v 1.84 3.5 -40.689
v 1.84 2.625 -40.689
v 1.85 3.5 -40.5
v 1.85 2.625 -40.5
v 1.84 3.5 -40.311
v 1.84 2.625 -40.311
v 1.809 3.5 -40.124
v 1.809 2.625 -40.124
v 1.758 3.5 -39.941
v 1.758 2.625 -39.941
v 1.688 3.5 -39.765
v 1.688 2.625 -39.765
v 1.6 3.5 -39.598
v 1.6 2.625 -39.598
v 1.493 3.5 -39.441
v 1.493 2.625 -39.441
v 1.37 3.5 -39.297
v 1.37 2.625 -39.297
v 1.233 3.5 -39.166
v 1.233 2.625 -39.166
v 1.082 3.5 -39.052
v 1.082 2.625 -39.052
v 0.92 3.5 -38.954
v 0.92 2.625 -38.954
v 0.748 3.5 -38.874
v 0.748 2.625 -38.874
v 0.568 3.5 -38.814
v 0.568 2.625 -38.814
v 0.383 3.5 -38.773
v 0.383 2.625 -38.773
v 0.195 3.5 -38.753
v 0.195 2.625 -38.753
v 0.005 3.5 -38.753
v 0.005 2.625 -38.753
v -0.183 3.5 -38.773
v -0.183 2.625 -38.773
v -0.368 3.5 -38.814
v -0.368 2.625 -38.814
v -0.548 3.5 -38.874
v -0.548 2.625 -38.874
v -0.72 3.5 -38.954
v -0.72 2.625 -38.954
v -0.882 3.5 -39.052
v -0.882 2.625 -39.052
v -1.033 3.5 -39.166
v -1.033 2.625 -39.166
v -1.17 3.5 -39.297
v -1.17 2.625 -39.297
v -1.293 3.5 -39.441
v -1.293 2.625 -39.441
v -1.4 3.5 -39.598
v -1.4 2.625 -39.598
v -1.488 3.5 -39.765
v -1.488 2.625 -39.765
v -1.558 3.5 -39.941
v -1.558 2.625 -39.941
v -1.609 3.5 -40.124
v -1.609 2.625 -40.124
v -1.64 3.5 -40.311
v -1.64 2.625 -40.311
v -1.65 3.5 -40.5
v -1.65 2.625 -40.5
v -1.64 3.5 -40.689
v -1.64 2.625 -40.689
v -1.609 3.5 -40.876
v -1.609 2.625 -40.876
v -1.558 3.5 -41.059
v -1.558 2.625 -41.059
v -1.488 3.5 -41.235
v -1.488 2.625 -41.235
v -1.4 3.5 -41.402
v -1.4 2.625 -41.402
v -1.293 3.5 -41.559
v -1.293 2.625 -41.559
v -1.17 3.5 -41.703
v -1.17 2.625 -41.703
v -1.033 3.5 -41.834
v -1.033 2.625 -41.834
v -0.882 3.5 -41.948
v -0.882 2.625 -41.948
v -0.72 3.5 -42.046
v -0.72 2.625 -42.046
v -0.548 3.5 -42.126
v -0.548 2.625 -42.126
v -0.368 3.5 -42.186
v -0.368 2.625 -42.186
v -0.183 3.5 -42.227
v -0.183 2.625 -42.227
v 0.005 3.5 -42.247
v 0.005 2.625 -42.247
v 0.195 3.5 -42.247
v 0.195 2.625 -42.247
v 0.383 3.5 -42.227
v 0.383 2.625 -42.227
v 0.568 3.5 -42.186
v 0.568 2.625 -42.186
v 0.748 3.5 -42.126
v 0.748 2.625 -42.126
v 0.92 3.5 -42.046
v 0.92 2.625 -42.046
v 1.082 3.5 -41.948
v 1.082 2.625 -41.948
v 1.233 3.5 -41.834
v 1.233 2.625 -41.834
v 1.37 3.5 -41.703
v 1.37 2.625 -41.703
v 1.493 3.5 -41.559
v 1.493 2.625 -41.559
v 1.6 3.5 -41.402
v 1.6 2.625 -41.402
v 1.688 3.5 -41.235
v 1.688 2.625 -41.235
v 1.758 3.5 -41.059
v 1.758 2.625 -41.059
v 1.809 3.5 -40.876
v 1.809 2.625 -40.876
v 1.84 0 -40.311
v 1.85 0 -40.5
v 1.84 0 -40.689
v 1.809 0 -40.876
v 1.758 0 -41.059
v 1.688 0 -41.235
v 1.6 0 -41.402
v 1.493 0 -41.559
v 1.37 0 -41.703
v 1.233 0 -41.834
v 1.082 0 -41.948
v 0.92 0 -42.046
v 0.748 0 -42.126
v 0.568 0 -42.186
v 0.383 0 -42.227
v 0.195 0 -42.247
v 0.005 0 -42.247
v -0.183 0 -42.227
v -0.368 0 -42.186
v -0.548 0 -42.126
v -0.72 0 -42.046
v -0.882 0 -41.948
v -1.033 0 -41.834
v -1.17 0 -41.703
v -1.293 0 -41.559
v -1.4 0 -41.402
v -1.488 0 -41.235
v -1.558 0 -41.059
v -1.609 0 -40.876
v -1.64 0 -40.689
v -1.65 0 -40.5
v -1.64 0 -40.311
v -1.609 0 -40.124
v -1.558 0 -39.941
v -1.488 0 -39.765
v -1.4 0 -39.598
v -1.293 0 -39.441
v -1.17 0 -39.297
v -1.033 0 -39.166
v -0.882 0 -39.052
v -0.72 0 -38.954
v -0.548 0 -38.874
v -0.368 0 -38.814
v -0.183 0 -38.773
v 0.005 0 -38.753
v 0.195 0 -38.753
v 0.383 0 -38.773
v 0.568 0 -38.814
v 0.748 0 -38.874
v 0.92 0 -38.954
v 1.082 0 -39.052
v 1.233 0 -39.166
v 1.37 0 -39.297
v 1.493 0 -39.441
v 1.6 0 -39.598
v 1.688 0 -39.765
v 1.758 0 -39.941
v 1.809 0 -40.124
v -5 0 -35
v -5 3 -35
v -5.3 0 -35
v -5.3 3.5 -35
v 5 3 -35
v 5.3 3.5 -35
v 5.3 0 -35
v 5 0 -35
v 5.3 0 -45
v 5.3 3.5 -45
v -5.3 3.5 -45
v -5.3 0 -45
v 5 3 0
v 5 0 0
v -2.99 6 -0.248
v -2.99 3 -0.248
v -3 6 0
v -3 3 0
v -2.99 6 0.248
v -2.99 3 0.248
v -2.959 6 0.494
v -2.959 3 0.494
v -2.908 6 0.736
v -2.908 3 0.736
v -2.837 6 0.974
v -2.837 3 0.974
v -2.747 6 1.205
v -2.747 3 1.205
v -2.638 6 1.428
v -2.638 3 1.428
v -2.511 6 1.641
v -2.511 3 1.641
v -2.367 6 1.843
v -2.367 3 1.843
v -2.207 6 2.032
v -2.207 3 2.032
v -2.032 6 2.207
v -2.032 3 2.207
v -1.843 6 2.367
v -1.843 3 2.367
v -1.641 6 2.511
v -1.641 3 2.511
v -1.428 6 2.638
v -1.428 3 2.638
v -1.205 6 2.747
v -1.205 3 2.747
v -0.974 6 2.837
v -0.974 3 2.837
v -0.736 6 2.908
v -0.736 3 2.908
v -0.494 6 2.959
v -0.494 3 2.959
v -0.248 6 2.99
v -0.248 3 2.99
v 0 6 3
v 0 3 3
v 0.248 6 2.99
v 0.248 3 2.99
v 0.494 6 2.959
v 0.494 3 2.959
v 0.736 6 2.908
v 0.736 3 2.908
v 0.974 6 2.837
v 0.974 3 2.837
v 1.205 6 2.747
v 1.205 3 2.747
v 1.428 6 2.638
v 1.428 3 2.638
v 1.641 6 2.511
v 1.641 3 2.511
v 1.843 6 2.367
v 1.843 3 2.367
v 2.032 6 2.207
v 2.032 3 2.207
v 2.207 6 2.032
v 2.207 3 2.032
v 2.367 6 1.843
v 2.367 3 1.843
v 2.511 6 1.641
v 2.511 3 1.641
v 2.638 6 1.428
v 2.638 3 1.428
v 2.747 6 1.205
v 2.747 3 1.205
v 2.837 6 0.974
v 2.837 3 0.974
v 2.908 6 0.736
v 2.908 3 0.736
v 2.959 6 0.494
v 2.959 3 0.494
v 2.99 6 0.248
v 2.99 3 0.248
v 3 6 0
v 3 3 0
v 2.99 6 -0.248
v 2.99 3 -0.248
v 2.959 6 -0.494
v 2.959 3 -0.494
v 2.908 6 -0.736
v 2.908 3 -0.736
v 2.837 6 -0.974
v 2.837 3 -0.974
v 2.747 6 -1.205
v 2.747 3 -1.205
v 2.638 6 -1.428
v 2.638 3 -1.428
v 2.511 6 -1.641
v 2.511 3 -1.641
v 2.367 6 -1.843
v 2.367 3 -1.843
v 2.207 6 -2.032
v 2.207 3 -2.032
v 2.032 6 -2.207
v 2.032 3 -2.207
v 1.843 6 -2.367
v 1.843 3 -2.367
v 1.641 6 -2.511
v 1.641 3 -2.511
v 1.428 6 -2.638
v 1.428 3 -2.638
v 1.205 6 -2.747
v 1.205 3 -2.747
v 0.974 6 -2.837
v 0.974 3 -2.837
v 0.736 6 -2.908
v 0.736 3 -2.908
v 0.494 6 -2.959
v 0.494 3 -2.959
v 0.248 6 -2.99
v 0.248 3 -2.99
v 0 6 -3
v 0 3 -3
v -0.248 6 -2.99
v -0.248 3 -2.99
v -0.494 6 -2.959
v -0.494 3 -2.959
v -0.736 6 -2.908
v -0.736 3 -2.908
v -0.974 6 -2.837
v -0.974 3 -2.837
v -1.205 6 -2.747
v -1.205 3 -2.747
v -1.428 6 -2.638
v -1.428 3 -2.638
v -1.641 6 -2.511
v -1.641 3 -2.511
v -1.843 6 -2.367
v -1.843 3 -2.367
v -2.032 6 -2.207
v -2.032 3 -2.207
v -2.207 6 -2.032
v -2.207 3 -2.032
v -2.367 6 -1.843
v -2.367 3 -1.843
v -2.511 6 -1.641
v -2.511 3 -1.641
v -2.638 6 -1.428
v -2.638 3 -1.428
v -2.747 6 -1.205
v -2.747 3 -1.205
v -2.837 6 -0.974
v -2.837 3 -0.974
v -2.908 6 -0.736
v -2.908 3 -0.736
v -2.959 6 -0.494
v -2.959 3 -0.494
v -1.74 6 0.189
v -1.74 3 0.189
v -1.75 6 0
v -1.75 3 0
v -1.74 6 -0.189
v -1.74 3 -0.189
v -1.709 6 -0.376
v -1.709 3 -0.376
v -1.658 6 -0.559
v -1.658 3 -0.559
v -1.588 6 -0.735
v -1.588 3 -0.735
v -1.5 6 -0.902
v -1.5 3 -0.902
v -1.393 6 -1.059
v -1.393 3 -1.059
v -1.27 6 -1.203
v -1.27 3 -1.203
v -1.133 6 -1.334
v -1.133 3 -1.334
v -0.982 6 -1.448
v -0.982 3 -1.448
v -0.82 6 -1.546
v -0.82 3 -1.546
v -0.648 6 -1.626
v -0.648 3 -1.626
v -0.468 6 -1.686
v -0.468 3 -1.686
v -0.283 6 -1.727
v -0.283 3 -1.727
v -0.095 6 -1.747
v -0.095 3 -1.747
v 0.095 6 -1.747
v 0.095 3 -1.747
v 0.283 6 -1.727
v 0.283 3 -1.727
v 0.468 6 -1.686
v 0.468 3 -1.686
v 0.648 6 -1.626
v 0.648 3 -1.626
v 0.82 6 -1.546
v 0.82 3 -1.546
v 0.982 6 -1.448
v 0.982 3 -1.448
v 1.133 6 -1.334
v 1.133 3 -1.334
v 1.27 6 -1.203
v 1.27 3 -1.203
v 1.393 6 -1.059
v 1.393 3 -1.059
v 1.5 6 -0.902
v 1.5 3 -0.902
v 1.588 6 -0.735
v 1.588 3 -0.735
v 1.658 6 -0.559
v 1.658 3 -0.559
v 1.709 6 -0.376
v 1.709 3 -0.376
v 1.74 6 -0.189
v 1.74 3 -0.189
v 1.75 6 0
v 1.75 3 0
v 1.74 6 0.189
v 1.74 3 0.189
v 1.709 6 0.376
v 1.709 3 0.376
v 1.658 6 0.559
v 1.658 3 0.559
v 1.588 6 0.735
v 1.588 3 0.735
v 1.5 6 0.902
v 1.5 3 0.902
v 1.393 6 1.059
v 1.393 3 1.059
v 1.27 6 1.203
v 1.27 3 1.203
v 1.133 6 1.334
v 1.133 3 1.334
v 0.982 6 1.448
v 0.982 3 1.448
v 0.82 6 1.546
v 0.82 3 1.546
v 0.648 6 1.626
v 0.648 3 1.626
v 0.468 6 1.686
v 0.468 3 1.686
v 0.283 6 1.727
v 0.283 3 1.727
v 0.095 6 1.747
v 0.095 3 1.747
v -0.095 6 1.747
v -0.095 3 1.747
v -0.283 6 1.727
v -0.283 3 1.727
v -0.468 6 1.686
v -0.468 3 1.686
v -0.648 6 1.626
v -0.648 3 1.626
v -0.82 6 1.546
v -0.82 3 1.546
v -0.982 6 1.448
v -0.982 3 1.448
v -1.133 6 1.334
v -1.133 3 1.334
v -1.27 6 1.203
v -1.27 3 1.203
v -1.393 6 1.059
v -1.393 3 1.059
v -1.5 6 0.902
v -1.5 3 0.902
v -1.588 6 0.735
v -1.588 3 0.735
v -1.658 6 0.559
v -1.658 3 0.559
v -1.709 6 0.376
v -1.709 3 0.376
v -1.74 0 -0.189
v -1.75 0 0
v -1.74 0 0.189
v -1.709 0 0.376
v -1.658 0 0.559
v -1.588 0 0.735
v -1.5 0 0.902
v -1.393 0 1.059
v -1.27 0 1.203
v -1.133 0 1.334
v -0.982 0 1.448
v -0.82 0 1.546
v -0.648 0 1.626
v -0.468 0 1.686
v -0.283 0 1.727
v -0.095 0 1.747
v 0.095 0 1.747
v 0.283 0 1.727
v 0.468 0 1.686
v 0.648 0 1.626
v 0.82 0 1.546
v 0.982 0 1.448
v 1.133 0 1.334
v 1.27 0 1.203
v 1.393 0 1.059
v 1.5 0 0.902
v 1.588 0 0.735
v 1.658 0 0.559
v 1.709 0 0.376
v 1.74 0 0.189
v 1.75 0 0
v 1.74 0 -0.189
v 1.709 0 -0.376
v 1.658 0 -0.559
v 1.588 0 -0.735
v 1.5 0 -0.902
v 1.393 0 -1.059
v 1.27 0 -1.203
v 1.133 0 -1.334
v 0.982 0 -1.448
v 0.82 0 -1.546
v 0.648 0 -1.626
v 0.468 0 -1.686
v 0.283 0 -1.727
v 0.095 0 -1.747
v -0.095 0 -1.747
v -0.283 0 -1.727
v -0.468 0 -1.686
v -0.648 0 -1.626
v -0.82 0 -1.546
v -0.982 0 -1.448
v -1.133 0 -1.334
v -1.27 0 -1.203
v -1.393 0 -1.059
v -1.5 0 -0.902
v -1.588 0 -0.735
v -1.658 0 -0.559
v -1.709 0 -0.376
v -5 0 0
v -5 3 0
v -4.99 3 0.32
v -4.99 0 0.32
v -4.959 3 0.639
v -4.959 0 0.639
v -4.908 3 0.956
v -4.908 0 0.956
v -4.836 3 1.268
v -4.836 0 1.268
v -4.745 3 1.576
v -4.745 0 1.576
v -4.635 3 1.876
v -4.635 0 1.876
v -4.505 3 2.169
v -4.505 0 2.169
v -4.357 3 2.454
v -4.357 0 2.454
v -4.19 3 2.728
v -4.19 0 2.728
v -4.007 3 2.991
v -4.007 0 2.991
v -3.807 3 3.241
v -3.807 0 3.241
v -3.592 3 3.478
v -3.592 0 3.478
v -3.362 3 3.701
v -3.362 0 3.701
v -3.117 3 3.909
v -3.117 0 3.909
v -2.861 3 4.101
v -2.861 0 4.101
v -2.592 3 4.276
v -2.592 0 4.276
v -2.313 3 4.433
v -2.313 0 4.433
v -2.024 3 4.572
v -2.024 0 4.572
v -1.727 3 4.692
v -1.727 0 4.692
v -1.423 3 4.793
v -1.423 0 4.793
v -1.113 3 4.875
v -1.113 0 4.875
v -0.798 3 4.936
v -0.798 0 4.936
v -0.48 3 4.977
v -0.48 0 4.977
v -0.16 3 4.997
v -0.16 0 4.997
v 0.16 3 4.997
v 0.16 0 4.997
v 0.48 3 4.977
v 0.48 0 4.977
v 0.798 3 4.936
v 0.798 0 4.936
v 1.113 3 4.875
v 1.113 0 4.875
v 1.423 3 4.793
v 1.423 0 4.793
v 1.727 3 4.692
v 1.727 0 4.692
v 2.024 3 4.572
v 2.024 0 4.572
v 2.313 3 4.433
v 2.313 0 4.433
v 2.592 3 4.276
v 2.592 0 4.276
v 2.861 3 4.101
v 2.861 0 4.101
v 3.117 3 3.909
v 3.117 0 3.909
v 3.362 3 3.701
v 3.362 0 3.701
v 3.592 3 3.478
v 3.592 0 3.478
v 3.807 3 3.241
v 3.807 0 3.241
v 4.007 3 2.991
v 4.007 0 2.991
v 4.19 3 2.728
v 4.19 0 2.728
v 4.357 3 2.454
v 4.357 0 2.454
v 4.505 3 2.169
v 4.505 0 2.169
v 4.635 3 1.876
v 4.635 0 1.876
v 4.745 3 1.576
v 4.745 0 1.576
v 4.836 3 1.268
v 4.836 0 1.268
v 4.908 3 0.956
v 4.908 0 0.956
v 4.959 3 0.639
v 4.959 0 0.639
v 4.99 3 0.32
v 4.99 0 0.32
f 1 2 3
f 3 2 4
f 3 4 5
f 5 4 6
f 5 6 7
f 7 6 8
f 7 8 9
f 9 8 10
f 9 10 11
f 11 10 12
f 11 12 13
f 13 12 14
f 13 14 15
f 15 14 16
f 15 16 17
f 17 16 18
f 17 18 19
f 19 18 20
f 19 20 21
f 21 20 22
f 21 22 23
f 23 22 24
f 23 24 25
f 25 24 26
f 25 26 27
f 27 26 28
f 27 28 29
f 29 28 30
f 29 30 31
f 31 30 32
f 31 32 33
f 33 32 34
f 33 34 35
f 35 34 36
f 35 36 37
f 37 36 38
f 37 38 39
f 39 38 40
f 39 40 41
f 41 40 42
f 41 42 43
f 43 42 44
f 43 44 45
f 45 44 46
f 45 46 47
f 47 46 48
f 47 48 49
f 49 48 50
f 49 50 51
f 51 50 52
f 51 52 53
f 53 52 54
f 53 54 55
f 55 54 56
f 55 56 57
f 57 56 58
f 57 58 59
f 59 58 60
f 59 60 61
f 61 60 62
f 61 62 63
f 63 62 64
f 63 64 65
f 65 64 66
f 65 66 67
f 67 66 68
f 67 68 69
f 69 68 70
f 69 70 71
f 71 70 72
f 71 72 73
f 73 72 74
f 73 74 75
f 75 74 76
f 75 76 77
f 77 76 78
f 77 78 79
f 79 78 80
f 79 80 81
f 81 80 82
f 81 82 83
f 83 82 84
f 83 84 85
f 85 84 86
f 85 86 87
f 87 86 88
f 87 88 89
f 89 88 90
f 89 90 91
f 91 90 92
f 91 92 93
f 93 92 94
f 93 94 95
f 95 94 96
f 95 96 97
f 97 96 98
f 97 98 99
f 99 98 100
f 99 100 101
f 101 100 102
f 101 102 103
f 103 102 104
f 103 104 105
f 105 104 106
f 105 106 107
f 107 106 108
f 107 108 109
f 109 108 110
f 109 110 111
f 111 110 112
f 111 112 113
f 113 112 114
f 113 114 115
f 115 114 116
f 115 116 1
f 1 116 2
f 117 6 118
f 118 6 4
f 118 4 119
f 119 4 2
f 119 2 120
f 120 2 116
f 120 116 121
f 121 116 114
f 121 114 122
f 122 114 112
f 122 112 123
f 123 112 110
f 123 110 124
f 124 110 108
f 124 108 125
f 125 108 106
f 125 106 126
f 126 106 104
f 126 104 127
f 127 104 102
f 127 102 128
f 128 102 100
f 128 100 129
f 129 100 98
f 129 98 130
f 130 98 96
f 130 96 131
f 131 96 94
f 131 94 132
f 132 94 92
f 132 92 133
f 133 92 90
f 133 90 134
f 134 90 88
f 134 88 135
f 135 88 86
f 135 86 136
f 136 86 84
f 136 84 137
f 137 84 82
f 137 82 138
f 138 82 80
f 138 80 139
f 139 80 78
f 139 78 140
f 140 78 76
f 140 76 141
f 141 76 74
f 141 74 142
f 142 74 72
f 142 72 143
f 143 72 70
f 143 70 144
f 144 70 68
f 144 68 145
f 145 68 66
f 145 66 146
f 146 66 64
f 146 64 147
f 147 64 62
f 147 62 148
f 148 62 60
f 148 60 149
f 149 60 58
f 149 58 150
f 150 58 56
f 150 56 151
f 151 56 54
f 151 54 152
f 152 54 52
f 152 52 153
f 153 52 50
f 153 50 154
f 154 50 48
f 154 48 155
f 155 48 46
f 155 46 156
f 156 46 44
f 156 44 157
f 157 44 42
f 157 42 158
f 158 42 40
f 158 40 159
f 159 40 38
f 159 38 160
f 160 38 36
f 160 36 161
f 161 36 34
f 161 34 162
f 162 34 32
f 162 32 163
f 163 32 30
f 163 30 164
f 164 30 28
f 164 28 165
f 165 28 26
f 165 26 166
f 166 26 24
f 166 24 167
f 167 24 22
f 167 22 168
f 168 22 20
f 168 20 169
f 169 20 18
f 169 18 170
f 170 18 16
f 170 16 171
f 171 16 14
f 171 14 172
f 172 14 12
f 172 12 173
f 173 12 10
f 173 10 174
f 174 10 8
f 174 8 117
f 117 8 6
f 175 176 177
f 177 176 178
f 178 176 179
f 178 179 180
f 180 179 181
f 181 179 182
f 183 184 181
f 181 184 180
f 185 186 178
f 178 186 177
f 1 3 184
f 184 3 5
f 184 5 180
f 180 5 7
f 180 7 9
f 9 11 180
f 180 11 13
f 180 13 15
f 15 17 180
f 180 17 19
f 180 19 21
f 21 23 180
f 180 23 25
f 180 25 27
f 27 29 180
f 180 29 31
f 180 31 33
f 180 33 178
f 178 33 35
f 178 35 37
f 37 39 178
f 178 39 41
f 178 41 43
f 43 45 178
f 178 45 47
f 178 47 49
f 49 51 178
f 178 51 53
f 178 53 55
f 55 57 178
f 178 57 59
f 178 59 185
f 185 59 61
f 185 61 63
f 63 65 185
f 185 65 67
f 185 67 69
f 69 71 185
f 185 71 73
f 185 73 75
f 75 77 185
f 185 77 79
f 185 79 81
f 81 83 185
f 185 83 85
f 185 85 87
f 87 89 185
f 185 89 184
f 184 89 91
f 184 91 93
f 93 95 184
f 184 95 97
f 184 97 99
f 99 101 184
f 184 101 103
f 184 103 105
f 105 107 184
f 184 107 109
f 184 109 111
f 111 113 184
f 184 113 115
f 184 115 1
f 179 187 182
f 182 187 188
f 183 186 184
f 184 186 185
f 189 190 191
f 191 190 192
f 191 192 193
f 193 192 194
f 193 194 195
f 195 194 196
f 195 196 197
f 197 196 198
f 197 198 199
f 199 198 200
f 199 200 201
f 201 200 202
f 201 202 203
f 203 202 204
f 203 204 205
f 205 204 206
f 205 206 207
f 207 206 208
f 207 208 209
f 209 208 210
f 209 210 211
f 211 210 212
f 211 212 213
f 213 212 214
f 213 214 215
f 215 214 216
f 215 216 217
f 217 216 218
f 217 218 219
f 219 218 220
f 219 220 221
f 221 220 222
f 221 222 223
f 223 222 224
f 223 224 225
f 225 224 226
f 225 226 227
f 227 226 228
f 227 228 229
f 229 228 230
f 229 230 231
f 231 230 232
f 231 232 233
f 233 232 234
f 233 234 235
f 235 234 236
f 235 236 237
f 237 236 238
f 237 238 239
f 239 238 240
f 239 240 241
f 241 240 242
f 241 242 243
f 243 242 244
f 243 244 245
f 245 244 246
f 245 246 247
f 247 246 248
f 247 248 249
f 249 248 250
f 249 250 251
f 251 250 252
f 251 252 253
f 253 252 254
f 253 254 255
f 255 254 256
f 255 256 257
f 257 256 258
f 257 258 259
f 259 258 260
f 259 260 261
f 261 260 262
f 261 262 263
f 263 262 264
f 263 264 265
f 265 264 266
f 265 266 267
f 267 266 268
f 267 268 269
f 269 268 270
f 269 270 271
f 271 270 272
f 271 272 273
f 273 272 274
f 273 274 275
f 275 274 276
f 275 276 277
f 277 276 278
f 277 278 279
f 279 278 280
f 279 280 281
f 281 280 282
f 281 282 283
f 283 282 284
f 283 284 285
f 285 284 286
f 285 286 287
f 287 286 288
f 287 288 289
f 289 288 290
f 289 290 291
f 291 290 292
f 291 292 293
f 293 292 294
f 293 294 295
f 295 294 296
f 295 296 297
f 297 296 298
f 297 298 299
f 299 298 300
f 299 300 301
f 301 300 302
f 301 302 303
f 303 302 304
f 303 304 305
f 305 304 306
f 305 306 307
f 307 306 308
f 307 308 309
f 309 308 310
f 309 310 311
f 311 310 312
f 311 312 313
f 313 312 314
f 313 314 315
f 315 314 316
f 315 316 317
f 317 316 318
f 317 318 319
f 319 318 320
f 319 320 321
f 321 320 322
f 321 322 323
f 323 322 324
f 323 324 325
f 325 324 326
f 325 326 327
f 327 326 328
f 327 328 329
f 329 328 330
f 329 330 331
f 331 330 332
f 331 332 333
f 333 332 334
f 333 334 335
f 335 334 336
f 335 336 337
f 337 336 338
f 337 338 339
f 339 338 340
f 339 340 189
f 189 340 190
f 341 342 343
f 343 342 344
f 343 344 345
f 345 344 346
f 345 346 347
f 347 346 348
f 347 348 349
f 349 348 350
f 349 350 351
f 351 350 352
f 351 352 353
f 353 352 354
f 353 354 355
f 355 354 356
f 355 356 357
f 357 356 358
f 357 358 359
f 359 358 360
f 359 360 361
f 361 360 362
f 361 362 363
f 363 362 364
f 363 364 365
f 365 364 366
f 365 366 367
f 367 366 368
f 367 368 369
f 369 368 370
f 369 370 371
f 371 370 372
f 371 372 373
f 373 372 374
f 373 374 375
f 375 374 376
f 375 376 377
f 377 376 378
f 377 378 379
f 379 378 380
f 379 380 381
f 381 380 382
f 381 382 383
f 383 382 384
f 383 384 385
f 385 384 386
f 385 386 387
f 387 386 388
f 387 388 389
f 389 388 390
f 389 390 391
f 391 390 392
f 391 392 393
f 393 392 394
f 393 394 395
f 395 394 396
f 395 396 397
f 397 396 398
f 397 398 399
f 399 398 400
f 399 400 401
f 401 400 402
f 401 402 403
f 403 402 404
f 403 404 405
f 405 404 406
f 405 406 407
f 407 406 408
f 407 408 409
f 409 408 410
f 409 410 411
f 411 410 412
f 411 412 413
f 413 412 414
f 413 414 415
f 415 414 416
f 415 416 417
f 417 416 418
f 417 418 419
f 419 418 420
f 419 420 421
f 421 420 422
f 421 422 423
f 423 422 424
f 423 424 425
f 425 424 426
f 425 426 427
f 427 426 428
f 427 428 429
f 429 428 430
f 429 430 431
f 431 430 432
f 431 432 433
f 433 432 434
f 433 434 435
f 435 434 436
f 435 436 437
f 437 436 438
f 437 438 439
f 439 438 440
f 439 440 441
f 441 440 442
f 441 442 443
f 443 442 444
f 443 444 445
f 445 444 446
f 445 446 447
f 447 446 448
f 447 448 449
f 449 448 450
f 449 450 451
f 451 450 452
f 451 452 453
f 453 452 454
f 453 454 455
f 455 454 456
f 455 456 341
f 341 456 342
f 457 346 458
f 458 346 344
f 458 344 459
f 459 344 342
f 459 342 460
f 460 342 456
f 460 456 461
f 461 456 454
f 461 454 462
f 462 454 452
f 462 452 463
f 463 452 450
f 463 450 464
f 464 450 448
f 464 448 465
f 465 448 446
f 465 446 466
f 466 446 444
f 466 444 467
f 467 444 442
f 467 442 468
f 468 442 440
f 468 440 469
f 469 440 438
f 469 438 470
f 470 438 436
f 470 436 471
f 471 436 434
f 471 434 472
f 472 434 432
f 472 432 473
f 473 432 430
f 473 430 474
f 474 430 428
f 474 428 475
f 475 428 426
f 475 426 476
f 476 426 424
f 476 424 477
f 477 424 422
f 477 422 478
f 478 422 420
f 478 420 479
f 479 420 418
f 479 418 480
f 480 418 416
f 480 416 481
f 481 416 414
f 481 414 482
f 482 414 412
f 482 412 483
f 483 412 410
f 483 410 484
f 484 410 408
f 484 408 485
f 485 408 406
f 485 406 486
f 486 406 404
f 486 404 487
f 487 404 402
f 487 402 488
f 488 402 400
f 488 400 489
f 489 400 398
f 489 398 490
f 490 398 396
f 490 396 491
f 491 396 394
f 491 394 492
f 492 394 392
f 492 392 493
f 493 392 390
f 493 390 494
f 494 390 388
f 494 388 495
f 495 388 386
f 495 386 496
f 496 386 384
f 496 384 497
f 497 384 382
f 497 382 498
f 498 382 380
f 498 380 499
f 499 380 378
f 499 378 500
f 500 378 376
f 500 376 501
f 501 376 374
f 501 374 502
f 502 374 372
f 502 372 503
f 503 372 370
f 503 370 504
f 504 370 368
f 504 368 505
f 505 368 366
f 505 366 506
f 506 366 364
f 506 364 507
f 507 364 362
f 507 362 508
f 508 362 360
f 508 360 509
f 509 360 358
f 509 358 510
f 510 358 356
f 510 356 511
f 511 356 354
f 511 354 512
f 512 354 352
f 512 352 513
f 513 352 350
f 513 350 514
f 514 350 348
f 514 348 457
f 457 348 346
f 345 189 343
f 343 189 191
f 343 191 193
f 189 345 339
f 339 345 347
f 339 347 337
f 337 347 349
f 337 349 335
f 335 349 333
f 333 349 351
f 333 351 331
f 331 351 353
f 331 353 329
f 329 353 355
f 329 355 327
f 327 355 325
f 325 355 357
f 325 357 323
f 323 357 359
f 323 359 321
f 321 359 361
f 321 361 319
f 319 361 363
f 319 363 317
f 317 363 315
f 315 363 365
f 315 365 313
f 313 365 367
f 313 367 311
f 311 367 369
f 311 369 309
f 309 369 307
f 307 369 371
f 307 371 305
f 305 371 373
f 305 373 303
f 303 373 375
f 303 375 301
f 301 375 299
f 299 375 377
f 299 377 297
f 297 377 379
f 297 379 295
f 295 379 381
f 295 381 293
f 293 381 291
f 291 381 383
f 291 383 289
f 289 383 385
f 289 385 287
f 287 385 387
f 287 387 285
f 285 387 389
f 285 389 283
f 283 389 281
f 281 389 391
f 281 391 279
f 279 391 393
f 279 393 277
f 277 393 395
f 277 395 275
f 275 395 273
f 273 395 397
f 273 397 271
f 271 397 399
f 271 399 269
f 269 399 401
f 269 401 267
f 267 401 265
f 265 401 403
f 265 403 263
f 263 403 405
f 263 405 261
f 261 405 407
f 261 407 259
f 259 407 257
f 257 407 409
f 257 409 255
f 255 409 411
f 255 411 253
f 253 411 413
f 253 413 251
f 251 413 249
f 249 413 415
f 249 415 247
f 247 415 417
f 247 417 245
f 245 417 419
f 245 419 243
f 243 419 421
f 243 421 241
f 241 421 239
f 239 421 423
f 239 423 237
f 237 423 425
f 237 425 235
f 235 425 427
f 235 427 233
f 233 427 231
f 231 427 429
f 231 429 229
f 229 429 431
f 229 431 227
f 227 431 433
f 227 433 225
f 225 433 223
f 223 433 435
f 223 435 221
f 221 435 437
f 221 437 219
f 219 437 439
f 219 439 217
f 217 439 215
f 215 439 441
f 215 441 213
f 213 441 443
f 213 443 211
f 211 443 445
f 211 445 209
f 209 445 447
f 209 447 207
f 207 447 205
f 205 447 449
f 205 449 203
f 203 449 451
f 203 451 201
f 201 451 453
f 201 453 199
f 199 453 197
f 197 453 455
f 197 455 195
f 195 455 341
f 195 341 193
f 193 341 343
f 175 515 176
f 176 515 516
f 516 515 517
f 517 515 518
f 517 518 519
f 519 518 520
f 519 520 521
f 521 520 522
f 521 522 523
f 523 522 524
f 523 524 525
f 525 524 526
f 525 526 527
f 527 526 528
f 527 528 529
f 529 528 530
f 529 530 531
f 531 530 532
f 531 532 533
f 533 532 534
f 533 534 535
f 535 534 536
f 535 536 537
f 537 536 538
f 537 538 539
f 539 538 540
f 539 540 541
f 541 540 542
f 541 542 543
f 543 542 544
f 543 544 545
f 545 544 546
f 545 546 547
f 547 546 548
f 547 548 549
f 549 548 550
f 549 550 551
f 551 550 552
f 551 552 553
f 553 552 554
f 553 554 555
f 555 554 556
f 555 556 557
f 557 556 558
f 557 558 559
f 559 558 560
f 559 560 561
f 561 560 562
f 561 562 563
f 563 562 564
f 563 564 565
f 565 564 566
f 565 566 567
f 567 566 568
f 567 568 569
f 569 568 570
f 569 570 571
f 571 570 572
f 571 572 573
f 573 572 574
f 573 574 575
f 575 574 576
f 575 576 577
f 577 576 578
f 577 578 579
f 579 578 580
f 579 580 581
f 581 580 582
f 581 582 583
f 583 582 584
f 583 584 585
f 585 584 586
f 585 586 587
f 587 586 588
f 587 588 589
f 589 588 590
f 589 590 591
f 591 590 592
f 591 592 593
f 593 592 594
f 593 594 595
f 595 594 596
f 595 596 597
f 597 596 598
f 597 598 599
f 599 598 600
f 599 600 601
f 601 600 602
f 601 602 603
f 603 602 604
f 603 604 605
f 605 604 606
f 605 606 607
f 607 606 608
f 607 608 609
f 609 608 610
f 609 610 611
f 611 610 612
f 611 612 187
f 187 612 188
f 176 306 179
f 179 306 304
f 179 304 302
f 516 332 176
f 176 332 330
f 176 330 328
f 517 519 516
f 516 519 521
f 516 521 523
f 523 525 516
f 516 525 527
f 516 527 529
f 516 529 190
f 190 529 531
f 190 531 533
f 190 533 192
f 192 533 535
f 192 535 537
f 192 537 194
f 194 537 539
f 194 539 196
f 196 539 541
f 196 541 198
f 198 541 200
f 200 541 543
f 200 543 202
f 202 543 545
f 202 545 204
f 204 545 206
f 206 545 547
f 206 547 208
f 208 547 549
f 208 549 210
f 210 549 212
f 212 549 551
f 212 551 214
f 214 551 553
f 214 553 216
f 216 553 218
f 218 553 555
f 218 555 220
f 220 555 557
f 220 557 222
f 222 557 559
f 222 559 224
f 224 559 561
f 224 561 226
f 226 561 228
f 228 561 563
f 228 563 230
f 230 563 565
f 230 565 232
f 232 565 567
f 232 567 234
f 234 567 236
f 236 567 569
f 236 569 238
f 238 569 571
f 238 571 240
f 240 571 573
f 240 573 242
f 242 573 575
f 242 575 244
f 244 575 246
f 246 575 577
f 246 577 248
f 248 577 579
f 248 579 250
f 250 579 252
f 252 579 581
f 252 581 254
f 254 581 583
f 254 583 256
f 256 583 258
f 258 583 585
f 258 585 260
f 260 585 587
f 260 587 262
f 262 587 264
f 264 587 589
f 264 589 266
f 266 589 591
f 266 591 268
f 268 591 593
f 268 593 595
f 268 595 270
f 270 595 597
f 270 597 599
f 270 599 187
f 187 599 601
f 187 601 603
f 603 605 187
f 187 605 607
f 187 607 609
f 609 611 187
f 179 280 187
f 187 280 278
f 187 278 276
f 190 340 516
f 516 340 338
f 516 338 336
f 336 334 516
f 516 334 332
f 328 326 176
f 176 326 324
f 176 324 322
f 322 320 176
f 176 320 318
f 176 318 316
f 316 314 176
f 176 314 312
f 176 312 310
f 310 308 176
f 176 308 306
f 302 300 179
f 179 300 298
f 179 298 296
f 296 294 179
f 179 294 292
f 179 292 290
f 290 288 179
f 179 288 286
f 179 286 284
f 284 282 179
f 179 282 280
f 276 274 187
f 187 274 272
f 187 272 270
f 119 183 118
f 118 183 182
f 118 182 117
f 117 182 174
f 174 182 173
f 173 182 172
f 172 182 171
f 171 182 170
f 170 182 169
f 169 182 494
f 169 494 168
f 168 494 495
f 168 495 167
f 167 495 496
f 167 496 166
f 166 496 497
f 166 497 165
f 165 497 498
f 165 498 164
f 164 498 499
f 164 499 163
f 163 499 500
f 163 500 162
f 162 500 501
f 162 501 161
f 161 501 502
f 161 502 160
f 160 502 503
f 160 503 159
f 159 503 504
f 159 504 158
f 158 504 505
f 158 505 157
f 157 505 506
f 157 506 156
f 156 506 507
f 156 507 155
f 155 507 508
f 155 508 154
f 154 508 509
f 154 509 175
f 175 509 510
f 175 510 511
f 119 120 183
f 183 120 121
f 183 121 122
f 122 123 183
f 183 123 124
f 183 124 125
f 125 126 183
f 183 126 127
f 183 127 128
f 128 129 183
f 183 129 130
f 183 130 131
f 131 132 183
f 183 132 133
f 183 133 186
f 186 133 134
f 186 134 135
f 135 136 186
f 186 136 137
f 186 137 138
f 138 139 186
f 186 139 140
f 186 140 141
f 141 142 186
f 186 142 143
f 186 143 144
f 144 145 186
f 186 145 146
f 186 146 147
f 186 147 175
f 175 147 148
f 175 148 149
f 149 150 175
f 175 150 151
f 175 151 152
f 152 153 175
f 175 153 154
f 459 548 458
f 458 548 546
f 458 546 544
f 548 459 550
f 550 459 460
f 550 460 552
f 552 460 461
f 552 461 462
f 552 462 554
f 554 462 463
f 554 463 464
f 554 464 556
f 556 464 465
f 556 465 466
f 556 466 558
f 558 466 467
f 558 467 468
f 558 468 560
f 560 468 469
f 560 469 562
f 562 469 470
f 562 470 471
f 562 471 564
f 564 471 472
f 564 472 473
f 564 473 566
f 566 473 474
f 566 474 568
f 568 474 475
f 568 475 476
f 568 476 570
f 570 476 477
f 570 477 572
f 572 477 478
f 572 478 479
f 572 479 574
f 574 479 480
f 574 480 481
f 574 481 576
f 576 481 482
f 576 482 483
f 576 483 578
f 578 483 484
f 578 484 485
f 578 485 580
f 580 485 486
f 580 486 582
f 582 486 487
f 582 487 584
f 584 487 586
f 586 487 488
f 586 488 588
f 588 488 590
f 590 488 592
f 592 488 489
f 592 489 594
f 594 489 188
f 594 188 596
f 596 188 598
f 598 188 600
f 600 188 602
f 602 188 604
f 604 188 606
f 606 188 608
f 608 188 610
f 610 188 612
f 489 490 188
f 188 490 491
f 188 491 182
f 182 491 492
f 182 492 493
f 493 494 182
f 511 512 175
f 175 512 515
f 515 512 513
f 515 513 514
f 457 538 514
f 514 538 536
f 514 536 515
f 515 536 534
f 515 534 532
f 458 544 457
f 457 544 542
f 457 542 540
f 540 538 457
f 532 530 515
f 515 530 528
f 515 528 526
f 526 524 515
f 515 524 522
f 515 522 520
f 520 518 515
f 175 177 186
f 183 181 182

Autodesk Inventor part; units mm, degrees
ref_plane "YZ Plane" through (0, 0, 0) normal (1, 0, 0) x (0, 1, 0)
ref_plane "XZ Plane" through (0, 0, 0) normal (0, 1, 0) x (-1, 0, 0)
ref_plane "XY Plane" through (0, 0, 0) normal (0, 0, 1) x (1, 0, 0)
sketch "Sketch1" plane through (0, 0, 0) normal (0, 1, 0) x (-1, 0, 0)
  circle A0 centre (0, 0) radius 1.75
  arc A1 (5, 0) -> (-5, 0) centre (0, 0) ccw
  circle A2 centre (0, 0) radius 3
  line L0 (5, 0) -> (5, -5)
  line L1 (5, -5) -> (-5, -5)
  line L2 (-5, 0) -> (-5, -5)
  dimension "d0" = 3.5
  dimension "d1" = 10
  dimension "d2" = 6
extrude "Extrusion1" add sketch "Sketch1" along normal blind 3 contours L0 L1 L2 A1
extrude "bearing-distance-holder" add sketch "Sketch1" along normal blind 6 contours A2
sketch "Sketch2" plane through (5, 0, -5) normal (0, 0, -1) x (-1, 0, 0)
  line L0 (0, 0) -> (10, 0) projected
  line L1 (10, 0) -> (10, 3) projected
  line L2 (0, 3) -> (10, 3) projected
  line L3 (0, 0) -> (0, 3) projected
  point P0 (5, 0)
extrude "L" add sketch "Sketch2" along normal blind 40
sketch "Sketch6" plane through (5, 0, -45) normal (0, 0, -1) x (-1, 0, 0)
  line L0 (10.3, 3.5) -> (-0.3, 3.5)
  line L1 (-0.3, 3.5) -> (-0.3, 0)
  line L2 (-0.3, 0) -> (10.3, 0)
  line L3 (10.3, 0) -> (10.3, 3.5)
  line L4 (10, 0) -> (10, 3) projected
  line L5 (0, 0) -> (10, 0) projected
  line L6 (10, 3) -> (0, 3) projected
  line L7 (0, 3) -> (0, 0) projected
  point P0 (5, 0)
  dimension "d20" = 0.3
  dimension "d21" = 0
  dimension "d22" = 0.5
  dimension "d23" = 0.3
extrude "Extrusion7" add sketch "Sketch6" against normal blind 10 contours L3 L2 L4 L6 L7 L1 L0
sketch "Sketch5" plane through (0.1, 3.5, 0) normal (0, 1, 0) x (1, 0, 0)
  circle A0 centre (0, 40.5) radius 1.75
  line L0 (-5, 45) -> (5, 45) projected
  point P0 (-0.1, 0)
  dimension "d16" = 4.5
  dimension "d17" = 3.5
extrude "Extrusion8" cut sketch "Sketch5" along normal mid plane 10
properties part number "connecting-rod-40"
